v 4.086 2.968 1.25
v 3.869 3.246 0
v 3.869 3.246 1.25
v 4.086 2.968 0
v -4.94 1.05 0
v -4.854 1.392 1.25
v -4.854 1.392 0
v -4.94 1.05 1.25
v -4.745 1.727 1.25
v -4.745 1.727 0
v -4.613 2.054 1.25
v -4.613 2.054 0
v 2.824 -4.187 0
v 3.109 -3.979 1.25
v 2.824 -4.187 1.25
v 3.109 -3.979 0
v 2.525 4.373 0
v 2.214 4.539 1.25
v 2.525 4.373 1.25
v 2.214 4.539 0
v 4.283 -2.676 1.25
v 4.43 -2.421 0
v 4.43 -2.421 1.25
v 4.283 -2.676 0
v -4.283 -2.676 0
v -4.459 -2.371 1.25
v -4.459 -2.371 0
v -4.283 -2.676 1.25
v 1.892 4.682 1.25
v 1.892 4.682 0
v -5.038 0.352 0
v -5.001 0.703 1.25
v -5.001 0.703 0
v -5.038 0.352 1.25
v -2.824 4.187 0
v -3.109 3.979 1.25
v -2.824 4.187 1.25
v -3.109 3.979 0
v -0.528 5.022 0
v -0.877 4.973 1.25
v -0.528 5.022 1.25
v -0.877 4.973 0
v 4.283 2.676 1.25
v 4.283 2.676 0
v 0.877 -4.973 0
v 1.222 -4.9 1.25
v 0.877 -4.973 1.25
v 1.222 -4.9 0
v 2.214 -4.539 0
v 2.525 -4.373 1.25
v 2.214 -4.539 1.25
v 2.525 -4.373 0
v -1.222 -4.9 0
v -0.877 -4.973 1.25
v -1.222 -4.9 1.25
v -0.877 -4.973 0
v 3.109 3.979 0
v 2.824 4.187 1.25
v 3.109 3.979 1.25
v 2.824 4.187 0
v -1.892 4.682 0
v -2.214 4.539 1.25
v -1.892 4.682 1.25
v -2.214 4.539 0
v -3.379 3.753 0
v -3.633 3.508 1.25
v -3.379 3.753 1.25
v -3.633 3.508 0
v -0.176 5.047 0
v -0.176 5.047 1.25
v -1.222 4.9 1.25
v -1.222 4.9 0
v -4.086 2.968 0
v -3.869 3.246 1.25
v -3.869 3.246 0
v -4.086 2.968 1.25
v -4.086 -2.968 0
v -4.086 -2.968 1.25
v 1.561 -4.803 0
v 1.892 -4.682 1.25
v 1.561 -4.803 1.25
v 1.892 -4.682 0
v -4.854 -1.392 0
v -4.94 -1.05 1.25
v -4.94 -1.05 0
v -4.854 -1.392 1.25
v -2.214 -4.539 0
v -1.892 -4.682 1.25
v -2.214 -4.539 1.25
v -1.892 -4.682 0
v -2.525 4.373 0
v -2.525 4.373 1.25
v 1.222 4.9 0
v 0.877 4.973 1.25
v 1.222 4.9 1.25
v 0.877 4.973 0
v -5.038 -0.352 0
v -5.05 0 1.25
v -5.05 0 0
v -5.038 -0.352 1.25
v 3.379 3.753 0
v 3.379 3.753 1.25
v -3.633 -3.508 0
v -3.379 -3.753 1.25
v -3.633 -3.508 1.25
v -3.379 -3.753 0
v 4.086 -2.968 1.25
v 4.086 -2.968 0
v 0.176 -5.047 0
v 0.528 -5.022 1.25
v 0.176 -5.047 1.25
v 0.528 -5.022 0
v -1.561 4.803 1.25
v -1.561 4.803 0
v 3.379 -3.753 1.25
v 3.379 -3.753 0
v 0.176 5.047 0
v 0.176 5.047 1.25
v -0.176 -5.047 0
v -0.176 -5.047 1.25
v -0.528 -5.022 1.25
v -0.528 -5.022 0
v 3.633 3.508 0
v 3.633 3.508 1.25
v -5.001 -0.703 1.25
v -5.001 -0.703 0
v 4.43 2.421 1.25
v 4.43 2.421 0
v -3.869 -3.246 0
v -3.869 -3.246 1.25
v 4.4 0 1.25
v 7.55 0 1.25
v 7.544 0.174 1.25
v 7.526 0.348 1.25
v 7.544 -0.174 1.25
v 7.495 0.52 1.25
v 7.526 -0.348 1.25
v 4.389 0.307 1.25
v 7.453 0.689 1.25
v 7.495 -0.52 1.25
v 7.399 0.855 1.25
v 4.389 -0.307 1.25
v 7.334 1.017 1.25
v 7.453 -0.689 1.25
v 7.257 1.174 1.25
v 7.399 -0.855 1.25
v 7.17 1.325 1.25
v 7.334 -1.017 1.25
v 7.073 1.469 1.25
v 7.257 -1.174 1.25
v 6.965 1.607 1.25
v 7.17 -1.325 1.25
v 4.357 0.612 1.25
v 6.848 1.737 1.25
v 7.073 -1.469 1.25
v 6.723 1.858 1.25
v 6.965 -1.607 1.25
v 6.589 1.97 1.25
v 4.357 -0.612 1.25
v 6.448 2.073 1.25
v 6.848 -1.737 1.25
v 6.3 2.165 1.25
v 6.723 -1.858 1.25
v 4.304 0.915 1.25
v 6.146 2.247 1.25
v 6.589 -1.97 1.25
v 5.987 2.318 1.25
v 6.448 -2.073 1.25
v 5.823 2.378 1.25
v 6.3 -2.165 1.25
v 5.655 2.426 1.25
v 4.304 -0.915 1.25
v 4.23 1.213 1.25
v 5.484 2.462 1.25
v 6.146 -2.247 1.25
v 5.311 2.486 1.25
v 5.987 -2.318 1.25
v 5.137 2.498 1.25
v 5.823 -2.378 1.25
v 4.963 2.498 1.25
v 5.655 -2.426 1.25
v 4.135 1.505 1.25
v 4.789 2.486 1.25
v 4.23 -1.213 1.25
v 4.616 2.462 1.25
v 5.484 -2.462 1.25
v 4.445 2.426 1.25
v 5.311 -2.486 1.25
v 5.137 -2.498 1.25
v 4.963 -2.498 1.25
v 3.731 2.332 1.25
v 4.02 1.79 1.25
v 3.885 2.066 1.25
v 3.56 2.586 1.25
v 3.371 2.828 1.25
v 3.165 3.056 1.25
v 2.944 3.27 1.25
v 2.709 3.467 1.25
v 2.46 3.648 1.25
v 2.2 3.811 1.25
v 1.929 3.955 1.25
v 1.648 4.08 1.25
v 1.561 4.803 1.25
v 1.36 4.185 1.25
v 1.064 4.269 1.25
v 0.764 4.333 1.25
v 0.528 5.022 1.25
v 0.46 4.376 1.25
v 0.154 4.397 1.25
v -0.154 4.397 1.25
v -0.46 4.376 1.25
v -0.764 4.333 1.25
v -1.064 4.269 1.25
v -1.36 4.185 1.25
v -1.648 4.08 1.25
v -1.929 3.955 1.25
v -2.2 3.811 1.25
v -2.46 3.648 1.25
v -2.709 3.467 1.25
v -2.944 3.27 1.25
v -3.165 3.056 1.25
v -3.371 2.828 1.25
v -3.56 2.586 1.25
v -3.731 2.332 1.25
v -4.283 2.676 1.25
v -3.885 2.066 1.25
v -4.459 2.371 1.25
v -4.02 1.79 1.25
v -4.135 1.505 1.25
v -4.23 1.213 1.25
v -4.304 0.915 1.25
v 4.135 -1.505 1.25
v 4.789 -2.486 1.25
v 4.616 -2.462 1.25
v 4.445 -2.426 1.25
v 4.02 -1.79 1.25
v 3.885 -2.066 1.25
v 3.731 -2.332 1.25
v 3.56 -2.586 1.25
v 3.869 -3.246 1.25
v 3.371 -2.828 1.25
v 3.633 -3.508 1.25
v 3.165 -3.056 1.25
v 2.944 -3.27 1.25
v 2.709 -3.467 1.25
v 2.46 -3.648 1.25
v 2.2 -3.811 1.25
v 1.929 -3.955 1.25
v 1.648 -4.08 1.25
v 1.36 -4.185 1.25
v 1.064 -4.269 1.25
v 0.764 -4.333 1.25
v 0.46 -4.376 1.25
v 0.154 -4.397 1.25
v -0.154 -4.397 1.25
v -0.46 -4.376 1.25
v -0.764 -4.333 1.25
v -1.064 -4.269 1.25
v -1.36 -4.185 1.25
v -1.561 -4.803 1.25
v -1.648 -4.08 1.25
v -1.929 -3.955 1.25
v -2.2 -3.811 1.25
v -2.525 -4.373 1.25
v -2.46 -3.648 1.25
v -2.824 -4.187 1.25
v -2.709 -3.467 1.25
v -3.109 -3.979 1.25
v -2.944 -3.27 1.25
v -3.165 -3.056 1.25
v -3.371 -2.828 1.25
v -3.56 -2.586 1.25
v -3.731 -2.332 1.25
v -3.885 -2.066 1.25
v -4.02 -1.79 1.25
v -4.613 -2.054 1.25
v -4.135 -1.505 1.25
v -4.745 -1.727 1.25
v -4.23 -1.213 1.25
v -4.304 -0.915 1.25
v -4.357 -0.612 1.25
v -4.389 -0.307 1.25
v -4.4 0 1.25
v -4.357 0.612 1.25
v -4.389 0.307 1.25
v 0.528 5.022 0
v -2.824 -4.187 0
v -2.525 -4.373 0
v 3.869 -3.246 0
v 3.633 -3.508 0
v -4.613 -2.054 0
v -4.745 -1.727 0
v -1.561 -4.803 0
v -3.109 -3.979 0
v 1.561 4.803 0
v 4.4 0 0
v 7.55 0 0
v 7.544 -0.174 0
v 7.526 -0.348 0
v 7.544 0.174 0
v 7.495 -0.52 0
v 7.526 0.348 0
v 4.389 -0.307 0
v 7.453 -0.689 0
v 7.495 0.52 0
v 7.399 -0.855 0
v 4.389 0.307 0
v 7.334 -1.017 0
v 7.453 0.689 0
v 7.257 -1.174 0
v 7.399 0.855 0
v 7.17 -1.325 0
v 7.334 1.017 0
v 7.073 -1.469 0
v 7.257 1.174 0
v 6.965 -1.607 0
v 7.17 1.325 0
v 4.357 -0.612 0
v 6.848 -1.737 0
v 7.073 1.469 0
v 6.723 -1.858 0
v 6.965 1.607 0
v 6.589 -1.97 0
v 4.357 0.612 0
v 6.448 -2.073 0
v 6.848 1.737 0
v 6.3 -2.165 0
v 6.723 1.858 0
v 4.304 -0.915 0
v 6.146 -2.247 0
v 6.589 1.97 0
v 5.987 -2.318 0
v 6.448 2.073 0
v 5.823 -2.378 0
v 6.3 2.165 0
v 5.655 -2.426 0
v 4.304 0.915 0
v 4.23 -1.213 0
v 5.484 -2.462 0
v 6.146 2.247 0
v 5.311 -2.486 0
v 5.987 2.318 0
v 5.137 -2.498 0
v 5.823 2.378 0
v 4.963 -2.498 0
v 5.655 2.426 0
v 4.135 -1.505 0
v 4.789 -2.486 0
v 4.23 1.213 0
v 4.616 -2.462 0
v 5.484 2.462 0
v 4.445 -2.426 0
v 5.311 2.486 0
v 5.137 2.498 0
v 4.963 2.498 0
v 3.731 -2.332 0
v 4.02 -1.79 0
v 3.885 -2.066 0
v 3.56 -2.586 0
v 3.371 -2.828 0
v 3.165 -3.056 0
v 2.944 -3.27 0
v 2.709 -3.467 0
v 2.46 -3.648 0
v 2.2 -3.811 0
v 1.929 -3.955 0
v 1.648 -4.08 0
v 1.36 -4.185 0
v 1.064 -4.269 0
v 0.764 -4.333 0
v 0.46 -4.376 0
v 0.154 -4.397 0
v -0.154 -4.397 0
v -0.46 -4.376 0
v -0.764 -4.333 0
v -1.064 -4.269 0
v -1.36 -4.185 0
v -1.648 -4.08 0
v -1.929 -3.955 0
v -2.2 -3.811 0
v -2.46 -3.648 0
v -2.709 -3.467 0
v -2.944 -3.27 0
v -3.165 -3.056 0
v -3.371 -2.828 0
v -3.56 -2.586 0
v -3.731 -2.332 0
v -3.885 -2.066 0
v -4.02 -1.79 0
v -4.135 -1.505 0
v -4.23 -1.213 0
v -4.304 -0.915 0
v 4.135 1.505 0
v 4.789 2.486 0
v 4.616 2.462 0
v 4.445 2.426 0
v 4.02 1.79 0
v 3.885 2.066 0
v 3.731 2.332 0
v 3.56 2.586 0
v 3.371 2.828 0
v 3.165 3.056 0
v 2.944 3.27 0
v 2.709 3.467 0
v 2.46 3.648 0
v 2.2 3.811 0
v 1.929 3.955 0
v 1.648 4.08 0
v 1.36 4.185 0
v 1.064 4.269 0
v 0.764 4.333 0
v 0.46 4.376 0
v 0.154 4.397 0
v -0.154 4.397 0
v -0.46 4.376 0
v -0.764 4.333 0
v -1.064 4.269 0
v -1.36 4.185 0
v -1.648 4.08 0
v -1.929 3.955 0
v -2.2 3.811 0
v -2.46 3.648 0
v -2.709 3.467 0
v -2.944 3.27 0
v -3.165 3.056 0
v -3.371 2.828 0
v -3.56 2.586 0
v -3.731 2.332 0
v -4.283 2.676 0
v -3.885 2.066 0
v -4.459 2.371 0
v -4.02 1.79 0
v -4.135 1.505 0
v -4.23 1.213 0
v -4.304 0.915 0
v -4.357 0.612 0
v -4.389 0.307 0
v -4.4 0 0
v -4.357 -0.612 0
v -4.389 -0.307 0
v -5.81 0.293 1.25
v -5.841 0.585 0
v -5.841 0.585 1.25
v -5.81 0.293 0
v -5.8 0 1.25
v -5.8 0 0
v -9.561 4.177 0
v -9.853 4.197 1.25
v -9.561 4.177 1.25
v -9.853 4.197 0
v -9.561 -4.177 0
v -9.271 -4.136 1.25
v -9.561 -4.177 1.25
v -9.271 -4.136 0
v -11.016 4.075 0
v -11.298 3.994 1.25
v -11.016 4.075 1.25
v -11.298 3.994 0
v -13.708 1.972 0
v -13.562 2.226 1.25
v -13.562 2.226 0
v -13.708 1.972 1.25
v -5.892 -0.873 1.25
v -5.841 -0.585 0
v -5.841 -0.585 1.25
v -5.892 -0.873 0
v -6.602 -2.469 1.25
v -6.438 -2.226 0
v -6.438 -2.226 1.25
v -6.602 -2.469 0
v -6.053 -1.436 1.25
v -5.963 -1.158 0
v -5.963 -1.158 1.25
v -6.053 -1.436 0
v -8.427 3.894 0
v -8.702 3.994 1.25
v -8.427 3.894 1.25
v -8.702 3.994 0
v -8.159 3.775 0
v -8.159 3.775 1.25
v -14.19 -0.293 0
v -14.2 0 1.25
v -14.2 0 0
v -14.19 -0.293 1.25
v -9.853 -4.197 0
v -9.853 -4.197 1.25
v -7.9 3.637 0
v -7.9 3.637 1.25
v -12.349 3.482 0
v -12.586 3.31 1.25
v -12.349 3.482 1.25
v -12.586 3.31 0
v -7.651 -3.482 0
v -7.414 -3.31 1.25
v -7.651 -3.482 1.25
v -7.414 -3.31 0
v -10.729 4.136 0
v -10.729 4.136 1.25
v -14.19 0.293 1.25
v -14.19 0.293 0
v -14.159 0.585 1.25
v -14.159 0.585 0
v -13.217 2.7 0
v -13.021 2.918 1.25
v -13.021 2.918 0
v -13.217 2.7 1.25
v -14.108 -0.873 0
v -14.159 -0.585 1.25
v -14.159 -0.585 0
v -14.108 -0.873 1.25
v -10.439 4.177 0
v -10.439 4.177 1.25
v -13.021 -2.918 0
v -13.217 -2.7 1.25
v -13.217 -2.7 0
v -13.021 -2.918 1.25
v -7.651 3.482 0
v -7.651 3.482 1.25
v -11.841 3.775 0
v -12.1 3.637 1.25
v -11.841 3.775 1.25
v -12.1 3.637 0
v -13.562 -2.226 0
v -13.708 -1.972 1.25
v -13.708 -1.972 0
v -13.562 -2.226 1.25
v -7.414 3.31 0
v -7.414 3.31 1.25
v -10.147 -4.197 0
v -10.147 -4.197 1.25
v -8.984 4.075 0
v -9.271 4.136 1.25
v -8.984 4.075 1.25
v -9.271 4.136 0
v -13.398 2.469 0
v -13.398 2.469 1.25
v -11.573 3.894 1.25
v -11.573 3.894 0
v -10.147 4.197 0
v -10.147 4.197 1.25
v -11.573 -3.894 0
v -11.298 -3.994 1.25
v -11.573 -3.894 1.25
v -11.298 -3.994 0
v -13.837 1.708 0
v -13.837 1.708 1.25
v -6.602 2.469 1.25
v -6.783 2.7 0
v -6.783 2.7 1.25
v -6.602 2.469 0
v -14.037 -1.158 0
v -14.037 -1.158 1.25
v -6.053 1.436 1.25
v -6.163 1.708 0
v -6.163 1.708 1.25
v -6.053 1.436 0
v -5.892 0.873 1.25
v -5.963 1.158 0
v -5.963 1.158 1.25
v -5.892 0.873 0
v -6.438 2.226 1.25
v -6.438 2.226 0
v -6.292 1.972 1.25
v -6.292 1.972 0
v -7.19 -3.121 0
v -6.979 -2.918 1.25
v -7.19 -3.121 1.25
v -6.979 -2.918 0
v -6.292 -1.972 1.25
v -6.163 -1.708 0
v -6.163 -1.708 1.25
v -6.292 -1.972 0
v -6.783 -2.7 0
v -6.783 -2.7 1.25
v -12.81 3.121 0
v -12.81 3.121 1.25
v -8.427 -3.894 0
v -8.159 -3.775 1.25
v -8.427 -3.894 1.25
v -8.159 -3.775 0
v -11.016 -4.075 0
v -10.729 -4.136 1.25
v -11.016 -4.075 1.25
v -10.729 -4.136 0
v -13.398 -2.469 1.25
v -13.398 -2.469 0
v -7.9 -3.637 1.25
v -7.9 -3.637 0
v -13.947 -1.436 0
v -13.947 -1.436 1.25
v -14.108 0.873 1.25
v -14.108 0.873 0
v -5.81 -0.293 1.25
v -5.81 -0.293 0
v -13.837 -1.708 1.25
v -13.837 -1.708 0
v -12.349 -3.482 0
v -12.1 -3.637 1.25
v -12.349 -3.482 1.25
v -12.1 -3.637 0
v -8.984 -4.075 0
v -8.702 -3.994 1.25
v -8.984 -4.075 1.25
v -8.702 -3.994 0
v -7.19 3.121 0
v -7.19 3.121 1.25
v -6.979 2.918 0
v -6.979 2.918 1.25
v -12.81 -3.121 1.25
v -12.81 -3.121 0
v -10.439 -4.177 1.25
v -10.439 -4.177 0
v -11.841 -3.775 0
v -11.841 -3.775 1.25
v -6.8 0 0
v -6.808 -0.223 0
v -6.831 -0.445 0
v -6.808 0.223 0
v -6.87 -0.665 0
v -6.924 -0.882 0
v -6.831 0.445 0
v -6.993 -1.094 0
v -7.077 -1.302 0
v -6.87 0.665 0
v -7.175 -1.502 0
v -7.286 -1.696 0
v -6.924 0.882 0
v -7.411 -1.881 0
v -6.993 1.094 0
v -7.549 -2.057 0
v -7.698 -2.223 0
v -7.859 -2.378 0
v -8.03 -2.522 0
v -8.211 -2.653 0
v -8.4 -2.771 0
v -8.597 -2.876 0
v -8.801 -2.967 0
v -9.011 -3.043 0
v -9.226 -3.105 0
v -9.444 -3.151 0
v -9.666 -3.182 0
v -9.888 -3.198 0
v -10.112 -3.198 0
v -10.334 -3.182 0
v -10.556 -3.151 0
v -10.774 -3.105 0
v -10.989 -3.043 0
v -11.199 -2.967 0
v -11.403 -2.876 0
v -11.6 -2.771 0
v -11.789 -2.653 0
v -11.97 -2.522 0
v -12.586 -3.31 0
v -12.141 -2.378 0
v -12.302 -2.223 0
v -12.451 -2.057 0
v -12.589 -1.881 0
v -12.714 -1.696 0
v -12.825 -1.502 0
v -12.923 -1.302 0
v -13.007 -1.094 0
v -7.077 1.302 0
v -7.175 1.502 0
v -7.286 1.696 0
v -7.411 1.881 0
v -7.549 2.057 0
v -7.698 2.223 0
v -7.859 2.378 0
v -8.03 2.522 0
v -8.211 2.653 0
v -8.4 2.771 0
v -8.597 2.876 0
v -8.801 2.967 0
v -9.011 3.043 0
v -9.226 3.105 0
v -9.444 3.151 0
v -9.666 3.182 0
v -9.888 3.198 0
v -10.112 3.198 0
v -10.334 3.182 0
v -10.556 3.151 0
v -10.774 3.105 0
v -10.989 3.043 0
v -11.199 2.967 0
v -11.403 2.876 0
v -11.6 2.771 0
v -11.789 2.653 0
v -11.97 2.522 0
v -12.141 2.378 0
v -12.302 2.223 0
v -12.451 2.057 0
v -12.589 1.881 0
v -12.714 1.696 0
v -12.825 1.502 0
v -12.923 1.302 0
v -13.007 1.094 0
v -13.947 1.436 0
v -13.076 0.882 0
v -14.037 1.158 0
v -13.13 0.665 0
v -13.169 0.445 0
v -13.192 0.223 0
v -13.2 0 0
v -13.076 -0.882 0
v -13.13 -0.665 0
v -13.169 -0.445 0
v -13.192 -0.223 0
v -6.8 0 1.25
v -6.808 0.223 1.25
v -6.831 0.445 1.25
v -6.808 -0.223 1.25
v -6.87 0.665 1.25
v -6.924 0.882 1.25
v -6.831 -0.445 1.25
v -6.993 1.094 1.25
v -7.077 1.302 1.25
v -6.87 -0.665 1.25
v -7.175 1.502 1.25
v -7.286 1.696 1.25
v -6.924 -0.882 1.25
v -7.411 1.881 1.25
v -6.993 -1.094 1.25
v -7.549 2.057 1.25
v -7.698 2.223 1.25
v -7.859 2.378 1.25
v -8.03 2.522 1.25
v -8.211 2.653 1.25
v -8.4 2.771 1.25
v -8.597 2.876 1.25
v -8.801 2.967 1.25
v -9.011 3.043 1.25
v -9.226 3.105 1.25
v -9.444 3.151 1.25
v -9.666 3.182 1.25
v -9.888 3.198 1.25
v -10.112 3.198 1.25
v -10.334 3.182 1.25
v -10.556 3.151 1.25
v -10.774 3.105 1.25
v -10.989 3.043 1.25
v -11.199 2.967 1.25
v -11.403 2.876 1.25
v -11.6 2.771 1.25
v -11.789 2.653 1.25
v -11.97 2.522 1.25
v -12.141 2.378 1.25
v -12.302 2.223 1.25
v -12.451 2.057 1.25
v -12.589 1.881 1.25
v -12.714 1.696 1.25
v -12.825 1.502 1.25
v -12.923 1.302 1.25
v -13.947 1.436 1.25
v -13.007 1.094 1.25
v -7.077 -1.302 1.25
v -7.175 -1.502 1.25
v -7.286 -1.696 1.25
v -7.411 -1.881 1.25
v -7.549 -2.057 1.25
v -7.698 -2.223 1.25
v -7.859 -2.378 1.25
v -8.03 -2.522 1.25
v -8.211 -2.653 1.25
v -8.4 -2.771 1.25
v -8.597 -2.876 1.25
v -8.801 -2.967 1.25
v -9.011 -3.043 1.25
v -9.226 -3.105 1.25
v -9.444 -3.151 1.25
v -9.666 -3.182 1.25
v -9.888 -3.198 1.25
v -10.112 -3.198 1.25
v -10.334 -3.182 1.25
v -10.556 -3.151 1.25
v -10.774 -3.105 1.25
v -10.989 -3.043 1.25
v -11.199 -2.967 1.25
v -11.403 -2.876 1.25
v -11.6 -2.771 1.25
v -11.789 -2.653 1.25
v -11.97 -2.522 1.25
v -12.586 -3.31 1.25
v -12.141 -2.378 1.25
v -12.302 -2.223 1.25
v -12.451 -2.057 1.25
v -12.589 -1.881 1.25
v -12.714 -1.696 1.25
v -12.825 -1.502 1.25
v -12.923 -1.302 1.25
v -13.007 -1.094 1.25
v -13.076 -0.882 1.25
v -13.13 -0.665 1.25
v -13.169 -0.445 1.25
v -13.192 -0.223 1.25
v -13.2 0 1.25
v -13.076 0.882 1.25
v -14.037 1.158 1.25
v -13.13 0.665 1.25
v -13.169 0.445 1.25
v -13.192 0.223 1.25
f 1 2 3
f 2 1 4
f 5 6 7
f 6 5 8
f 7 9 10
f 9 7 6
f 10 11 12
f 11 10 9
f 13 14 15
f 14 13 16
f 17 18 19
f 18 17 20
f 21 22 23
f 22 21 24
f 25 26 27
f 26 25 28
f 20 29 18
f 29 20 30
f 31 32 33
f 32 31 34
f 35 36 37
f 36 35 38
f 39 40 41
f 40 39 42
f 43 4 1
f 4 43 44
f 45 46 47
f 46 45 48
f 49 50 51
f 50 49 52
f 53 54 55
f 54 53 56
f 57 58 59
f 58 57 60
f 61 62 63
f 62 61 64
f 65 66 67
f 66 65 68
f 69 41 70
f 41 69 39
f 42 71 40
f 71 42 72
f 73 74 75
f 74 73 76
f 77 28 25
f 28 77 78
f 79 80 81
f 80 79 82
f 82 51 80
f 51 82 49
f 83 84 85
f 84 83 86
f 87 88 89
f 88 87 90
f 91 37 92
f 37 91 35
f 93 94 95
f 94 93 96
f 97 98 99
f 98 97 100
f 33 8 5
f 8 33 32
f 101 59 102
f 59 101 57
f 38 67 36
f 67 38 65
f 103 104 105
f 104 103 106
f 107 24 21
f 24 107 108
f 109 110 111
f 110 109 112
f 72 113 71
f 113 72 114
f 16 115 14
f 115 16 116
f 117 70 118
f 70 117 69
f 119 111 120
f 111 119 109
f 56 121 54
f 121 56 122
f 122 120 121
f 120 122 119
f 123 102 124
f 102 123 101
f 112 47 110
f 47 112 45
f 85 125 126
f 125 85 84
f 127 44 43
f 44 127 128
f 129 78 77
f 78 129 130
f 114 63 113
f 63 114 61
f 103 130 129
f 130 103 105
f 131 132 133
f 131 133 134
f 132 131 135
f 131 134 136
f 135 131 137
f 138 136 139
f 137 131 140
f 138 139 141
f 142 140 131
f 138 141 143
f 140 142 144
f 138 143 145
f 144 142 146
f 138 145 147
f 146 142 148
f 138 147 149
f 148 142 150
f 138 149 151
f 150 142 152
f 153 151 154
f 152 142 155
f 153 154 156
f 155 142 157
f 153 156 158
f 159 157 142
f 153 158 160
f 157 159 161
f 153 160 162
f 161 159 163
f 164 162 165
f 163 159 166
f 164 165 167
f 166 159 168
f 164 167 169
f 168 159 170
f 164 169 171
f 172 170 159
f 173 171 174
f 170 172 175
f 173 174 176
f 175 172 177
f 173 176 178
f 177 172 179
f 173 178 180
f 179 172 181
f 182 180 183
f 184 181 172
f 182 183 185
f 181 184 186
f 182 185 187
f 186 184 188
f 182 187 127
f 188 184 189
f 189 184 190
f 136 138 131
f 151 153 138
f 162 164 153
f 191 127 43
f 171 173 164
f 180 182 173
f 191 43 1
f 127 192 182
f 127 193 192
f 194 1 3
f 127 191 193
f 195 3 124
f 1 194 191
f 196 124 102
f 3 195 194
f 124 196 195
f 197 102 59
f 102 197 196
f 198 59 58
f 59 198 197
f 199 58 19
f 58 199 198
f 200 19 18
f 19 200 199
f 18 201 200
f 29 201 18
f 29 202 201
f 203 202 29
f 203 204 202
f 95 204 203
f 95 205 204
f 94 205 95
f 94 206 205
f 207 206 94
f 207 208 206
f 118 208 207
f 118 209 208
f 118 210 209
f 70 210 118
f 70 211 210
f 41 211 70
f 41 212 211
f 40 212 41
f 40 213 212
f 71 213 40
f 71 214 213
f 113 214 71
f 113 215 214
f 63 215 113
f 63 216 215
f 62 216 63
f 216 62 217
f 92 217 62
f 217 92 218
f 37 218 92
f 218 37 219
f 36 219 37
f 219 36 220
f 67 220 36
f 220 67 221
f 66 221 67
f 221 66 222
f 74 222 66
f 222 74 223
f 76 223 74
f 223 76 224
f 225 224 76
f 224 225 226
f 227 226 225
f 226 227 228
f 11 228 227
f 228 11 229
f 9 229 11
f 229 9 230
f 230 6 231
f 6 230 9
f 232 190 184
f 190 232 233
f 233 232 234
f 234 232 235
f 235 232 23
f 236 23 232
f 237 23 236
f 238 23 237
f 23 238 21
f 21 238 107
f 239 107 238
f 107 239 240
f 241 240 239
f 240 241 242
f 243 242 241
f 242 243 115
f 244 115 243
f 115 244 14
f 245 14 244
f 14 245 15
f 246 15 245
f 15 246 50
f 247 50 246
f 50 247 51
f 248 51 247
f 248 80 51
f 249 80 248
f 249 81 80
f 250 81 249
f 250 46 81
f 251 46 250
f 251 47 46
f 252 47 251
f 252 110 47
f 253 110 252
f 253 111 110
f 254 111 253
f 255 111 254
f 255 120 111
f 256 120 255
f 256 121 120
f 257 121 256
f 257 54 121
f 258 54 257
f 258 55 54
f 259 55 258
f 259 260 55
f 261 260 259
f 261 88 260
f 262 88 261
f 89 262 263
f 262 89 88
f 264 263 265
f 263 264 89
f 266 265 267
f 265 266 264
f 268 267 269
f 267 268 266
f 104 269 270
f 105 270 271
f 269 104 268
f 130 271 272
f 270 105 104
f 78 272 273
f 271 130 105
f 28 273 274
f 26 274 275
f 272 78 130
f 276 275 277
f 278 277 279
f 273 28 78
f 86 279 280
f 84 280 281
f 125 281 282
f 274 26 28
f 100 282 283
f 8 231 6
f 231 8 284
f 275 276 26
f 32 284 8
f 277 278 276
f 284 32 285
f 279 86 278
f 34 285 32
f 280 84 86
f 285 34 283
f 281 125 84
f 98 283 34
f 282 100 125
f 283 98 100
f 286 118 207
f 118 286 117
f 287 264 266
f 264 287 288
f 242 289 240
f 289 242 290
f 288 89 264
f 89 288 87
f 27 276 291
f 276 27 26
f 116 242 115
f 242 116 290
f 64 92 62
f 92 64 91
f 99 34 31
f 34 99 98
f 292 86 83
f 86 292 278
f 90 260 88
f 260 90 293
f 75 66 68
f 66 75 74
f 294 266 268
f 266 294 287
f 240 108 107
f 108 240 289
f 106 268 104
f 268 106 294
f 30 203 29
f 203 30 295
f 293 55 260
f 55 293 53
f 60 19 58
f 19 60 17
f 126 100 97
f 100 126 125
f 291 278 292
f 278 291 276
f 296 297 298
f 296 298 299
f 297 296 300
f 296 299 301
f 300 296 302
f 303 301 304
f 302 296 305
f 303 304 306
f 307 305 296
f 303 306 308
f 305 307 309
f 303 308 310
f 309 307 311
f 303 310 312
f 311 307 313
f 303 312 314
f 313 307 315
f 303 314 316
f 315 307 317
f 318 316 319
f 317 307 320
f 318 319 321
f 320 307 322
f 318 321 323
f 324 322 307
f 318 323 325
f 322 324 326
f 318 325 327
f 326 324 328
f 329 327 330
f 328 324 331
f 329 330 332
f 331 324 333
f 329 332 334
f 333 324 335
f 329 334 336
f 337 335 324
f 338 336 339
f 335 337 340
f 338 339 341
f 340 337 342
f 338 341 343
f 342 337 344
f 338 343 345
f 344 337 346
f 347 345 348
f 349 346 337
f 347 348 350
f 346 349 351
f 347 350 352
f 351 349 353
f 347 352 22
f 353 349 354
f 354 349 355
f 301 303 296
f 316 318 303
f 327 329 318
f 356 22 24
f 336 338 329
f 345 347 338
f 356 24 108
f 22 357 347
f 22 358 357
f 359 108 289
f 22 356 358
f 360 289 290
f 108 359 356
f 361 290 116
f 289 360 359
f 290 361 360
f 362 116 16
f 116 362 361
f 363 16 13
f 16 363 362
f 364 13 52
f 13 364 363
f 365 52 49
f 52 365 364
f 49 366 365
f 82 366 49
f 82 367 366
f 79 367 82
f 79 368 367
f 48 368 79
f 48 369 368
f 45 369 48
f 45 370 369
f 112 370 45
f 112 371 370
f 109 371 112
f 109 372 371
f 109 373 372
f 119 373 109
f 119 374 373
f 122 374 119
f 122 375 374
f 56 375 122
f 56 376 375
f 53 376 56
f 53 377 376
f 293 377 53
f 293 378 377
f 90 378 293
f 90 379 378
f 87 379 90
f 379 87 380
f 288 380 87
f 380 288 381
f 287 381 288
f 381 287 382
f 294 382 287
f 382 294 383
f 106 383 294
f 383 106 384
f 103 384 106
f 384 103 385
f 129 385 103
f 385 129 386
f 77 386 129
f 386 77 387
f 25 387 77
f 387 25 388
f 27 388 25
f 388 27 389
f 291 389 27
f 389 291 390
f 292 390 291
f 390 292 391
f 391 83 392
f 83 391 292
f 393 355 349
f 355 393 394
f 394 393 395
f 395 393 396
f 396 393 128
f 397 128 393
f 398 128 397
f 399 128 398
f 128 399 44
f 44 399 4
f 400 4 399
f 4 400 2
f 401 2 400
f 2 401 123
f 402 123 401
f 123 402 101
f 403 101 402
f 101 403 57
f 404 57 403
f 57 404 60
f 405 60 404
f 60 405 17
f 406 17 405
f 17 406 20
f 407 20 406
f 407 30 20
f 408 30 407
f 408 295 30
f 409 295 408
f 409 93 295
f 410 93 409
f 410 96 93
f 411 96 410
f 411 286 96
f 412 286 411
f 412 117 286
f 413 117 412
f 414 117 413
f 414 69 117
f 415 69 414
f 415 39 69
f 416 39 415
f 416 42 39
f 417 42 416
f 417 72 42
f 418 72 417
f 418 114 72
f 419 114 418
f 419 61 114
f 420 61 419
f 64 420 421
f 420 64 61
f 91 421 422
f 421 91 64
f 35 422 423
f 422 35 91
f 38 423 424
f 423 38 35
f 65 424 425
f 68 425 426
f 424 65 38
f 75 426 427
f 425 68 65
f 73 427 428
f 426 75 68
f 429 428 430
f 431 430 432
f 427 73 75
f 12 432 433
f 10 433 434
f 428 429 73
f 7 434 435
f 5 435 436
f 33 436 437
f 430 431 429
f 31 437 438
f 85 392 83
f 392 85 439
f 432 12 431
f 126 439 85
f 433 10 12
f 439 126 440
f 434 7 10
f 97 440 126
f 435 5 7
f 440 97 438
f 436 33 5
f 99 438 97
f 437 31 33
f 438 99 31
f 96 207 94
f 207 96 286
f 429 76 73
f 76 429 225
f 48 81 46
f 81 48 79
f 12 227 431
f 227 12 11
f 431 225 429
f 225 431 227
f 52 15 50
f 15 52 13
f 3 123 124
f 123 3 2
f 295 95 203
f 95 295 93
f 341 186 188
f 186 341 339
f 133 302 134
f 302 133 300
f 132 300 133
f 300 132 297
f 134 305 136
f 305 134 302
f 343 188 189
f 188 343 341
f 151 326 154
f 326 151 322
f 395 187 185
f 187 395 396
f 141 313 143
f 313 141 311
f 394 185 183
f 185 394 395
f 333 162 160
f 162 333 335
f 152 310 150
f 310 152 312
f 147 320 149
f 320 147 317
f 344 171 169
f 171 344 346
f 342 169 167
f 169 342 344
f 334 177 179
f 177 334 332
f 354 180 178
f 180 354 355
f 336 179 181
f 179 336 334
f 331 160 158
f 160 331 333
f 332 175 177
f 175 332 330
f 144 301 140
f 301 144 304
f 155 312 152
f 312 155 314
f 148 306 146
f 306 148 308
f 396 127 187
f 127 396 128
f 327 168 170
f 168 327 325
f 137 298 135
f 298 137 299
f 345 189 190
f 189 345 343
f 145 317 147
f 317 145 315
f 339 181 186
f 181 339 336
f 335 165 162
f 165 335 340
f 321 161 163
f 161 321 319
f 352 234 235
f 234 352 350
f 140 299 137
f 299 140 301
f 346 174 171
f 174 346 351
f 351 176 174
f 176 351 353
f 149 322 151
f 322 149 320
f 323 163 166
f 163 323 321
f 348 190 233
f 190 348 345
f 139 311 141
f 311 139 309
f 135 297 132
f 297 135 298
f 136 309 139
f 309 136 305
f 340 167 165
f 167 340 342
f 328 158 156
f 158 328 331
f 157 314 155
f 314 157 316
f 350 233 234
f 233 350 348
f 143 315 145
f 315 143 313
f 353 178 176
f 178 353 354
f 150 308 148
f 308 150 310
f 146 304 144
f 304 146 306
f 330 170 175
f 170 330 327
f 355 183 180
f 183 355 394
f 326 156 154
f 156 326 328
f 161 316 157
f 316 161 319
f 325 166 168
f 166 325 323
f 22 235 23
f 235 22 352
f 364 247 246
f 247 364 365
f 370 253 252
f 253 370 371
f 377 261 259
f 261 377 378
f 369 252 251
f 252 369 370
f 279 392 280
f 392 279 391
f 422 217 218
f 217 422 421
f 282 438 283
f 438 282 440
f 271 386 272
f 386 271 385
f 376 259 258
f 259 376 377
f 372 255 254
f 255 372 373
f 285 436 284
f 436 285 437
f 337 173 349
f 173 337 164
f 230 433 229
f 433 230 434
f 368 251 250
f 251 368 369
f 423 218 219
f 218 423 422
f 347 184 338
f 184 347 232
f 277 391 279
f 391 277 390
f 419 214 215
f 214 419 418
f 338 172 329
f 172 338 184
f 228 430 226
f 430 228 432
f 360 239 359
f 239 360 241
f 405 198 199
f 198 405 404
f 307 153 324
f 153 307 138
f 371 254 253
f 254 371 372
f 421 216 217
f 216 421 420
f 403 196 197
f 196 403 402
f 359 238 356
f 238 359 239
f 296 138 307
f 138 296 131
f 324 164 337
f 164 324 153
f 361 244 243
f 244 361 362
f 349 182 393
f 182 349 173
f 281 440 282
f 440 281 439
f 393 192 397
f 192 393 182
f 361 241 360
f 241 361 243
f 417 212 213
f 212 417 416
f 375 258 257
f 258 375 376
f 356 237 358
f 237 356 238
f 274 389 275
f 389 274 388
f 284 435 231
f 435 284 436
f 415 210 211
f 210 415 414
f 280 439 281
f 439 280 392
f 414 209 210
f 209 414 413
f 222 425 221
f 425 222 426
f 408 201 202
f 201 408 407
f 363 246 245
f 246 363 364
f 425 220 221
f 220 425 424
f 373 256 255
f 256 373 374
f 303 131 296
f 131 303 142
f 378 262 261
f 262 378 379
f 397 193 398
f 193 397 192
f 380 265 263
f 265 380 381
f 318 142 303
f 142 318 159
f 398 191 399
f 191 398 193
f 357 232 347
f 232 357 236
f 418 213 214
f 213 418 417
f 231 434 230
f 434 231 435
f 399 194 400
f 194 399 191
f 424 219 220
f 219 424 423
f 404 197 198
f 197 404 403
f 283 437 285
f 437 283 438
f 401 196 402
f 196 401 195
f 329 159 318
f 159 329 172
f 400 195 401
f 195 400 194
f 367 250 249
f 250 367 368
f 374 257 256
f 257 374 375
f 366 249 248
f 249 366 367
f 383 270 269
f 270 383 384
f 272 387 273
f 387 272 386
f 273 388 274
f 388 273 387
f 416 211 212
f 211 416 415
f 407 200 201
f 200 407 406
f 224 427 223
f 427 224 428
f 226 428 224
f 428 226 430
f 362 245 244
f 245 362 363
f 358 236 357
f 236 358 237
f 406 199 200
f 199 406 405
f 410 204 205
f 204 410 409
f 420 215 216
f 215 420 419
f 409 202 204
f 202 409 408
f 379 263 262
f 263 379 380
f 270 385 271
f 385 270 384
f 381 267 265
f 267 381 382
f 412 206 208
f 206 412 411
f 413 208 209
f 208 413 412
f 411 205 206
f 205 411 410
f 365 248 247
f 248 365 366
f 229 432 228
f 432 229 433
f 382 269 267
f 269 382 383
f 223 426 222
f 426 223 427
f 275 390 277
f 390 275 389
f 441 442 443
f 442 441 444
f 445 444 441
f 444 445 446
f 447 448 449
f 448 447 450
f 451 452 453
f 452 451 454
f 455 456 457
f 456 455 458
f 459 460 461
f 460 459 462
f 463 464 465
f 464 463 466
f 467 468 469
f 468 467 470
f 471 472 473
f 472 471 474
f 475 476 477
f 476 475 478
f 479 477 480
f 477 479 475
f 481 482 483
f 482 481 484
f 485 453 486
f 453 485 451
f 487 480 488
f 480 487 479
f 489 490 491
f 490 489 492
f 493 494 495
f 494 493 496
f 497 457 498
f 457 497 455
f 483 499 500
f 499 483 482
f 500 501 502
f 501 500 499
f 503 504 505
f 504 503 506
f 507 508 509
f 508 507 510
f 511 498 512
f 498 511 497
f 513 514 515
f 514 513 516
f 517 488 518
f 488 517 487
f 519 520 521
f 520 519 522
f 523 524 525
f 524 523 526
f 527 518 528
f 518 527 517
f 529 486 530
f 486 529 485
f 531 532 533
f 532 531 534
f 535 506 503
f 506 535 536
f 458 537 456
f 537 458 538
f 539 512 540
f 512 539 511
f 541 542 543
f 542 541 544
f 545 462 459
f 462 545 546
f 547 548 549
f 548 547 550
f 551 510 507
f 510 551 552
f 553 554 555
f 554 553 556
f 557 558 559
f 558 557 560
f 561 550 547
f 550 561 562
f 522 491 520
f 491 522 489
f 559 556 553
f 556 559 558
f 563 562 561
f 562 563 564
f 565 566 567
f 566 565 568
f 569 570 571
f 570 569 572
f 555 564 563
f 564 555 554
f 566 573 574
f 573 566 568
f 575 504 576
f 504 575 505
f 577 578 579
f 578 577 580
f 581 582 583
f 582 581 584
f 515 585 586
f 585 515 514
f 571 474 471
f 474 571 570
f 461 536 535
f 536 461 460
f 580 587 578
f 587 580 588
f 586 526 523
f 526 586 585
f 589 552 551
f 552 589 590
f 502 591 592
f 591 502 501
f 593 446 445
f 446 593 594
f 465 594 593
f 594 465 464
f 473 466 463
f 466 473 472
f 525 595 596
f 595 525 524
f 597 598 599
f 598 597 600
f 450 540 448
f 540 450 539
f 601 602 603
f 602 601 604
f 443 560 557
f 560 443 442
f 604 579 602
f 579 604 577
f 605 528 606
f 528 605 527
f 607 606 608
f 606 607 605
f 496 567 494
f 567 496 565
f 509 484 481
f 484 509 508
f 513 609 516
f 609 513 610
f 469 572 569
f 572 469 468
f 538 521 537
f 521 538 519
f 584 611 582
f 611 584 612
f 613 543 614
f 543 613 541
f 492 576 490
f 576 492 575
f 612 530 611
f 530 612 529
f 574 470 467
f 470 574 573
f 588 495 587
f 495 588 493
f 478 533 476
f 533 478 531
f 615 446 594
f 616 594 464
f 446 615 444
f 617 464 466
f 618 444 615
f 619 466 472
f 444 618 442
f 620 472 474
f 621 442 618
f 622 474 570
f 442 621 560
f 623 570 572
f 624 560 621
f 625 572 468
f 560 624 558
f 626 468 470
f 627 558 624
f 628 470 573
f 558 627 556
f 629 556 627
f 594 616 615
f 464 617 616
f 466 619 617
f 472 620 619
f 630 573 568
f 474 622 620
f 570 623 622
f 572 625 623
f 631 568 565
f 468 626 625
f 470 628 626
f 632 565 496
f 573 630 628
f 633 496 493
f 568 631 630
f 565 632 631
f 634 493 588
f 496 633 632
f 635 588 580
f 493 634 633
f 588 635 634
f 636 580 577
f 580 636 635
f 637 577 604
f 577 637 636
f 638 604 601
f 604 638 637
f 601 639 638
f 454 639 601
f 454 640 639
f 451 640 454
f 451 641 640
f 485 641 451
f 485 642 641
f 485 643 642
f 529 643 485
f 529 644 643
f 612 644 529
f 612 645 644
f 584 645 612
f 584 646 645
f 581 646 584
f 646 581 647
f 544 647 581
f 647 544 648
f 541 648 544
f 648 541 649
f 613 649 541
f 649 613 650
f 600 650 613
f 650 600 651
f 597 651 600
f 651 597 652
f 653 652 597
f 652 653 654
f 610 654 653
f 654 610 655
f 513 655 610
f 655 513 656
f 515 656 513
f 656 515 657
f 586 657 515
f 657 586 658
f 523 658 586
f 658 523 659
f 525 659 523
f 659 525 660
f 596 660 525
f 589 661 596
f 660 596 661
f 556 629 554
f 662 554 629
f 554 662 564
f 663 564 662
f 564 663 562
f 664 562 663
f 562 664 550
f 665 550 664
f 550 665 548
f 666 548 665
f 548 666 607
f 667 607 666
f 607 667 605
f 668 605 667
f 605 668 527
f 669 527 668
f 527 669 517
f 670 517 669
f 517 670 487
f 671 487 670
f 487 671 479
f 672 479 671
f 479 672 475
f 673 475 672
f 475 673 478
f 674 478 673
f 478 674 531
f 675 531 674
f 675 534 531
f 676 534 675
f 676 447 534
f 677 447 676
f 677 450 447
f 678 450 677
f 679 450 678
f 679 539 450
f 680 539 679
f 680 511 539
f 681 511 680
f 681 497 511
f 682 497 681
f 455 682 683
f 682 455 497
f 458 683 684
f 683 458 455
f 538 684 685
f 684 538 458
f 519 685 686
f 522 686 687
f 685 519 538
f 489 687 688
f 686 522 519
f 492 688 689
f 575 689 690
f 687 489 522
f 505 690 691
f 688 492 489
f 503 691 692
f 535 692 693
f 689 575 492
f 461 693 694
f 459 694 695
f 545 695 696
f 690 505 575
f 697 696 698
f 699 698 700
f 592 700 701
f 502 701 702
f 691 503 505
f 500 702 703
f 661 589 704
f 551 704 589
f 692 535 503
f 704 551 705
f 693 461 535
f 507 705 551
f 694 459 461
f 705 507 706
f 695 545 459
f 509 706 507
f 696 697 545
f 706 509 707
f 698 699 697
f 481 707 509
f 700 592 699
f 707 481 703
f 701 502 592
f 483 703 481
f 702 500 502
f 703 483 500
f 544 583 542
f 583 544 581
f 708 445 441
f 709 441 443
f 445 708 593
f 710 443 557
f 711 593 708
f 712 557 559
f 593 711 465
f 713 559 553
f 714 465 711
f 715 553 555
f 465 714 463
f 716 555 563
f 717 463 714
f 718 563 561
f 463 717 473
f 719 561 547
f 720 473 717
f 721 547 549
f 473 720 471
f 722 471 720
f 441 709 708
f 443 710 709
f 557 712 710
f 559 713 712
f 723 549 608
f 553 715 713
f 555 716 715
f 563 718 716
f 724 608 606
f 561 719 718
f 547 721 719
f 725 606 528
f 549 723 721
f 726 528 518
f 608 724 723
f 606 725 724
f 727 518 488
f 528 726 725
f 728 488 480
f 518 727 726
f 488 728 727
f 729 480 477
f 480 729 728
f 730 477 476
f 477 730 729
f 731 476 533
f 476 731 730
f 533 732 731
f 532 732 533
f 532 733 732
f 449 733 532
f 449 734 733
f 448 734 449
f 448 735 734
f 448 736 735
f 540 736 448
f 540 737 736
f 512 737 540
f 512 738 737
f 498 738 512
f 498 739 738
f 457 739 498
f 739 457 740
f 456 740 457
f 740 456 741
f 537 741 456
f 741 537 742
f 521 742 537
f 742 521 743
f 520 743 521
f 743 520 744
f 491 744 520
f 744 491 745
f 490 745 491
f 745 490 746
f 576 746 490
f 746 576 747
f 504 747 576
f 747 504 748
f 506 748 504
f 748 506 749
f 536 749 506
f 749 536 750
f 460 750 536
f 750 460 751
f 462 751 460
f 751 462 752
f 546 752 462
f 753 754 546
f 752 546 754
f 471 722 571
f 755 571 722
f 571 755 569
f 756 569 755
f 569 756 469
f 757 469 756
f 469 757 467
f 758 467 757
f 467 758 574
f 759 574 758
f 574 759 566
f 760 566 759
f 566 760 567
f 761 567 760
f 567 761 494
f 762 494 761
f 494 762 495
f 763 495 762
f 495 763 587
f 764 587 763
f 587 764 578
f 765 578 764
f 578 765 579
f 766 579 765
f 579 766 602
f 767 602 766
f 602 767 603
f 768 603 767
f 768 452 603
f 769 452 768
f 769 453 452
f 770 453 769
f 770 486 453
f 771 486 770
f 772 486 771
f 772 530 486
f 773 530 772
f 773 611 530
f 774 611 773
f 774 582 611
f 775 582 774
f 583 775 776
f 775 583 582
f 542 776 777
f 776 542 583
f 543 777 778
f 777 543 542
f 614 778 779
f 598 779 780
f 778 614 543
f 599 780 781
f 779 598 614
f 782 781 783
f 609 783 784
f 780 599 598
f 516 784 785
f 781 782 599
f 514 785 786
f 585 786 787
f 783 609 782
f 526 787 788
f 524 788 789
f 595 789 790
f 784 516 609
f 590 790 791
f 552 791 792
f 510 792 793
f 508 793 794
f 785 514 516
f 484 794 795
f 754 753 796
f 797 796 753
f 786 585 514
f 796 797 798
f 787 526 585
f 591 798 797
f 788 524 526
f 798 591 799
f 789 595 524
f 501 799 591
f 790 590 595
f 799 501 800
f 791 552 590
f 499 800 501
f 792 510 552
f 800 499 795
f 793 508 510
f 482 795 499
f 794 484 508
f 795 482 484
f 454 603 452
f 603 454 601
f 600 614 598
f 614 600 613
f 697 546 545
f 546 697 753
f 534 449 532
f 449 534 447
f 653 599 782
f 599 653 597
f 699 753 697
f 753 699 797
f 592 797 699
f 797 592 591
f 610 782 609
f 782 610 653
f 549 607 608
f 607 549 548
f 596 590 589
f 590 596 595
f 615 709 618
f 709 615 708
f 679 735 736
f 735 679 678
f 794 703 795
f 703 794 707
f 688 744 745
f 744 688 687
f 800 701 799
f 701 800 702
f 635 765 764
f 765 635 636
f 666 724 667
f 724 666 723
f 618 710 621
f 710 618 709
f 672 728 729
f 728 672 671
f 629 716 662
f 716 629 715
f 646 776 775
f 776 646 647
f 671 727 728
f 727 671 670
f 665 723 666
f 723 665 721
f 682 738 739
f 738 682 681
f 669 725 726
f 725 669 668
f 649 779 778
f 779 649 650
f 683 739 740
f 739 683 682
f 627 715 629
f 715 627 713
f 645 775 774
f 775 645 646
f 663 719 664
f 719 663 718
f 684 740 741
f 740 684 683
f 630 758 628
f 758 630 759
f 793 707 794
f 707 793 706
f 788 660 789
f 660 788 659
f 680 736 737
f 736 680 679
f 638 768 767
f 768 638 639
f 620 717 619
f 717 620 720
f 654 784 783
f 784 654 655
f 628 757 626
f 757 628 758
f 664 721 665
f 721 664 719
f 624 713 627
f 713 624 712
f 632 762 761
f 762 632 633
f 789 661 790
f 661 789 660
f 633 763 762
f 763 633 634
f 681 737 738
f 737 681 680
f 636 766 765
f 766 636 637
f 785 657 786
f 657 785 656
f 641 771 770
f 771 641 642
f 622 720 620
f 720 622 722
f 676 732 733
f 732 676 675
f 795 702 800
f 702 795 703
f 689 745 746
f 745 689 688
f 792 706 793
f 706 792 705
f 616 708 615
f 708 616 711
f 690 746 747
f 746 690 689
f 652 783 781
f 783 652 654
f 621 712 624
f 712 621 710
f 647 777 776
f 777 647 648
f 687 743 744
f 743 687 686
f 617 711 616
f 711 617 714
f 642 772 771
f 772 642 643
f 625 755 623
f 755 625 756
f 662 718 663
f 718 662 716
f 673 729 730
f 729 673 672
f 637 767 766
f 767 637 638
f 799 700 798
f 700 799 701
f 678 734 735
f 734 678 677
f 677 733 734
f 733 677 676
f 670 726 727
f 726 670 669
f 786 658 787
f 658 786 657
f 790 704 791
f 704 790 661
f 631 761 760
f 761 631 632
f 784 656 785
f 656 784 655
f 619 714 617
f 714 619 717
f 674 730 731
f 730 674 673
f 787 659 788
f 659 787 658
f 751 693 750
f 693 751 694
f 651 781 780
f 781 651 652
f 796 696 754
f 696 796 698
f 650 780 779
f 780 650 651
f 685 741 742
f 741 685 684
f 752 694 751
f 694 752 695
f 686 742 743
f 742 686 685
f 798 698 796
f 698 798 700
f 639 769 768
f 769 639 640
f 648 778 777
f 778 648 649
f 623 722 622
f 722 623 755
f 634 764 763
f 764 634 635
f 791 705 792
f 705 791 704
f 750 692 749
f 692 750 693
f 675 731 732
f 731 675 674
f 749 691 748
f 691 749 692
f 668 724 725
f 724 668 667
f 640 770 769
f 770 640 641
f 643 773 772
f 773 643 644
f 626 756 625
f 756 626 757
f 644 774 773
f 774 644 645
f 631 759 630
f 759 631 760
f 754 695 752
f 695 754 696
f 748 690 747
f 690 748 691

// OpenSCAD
$fn = 90;
height = 1.25;

difference(){
	union(){
		outterDiameter = 10.1;
		cylinder(d=outterDiameter, h=height);
		translate([outterDiameter/2, 0, 0])
			cylinder(d=5, h=height);
	}
	cylinder(d=8.8, h=height);
}

translate([-10, 0, 0])
	difference(){
		cylinder(d=8.4, h=height);
		cylinder(d=6.4, h=height);
	}
